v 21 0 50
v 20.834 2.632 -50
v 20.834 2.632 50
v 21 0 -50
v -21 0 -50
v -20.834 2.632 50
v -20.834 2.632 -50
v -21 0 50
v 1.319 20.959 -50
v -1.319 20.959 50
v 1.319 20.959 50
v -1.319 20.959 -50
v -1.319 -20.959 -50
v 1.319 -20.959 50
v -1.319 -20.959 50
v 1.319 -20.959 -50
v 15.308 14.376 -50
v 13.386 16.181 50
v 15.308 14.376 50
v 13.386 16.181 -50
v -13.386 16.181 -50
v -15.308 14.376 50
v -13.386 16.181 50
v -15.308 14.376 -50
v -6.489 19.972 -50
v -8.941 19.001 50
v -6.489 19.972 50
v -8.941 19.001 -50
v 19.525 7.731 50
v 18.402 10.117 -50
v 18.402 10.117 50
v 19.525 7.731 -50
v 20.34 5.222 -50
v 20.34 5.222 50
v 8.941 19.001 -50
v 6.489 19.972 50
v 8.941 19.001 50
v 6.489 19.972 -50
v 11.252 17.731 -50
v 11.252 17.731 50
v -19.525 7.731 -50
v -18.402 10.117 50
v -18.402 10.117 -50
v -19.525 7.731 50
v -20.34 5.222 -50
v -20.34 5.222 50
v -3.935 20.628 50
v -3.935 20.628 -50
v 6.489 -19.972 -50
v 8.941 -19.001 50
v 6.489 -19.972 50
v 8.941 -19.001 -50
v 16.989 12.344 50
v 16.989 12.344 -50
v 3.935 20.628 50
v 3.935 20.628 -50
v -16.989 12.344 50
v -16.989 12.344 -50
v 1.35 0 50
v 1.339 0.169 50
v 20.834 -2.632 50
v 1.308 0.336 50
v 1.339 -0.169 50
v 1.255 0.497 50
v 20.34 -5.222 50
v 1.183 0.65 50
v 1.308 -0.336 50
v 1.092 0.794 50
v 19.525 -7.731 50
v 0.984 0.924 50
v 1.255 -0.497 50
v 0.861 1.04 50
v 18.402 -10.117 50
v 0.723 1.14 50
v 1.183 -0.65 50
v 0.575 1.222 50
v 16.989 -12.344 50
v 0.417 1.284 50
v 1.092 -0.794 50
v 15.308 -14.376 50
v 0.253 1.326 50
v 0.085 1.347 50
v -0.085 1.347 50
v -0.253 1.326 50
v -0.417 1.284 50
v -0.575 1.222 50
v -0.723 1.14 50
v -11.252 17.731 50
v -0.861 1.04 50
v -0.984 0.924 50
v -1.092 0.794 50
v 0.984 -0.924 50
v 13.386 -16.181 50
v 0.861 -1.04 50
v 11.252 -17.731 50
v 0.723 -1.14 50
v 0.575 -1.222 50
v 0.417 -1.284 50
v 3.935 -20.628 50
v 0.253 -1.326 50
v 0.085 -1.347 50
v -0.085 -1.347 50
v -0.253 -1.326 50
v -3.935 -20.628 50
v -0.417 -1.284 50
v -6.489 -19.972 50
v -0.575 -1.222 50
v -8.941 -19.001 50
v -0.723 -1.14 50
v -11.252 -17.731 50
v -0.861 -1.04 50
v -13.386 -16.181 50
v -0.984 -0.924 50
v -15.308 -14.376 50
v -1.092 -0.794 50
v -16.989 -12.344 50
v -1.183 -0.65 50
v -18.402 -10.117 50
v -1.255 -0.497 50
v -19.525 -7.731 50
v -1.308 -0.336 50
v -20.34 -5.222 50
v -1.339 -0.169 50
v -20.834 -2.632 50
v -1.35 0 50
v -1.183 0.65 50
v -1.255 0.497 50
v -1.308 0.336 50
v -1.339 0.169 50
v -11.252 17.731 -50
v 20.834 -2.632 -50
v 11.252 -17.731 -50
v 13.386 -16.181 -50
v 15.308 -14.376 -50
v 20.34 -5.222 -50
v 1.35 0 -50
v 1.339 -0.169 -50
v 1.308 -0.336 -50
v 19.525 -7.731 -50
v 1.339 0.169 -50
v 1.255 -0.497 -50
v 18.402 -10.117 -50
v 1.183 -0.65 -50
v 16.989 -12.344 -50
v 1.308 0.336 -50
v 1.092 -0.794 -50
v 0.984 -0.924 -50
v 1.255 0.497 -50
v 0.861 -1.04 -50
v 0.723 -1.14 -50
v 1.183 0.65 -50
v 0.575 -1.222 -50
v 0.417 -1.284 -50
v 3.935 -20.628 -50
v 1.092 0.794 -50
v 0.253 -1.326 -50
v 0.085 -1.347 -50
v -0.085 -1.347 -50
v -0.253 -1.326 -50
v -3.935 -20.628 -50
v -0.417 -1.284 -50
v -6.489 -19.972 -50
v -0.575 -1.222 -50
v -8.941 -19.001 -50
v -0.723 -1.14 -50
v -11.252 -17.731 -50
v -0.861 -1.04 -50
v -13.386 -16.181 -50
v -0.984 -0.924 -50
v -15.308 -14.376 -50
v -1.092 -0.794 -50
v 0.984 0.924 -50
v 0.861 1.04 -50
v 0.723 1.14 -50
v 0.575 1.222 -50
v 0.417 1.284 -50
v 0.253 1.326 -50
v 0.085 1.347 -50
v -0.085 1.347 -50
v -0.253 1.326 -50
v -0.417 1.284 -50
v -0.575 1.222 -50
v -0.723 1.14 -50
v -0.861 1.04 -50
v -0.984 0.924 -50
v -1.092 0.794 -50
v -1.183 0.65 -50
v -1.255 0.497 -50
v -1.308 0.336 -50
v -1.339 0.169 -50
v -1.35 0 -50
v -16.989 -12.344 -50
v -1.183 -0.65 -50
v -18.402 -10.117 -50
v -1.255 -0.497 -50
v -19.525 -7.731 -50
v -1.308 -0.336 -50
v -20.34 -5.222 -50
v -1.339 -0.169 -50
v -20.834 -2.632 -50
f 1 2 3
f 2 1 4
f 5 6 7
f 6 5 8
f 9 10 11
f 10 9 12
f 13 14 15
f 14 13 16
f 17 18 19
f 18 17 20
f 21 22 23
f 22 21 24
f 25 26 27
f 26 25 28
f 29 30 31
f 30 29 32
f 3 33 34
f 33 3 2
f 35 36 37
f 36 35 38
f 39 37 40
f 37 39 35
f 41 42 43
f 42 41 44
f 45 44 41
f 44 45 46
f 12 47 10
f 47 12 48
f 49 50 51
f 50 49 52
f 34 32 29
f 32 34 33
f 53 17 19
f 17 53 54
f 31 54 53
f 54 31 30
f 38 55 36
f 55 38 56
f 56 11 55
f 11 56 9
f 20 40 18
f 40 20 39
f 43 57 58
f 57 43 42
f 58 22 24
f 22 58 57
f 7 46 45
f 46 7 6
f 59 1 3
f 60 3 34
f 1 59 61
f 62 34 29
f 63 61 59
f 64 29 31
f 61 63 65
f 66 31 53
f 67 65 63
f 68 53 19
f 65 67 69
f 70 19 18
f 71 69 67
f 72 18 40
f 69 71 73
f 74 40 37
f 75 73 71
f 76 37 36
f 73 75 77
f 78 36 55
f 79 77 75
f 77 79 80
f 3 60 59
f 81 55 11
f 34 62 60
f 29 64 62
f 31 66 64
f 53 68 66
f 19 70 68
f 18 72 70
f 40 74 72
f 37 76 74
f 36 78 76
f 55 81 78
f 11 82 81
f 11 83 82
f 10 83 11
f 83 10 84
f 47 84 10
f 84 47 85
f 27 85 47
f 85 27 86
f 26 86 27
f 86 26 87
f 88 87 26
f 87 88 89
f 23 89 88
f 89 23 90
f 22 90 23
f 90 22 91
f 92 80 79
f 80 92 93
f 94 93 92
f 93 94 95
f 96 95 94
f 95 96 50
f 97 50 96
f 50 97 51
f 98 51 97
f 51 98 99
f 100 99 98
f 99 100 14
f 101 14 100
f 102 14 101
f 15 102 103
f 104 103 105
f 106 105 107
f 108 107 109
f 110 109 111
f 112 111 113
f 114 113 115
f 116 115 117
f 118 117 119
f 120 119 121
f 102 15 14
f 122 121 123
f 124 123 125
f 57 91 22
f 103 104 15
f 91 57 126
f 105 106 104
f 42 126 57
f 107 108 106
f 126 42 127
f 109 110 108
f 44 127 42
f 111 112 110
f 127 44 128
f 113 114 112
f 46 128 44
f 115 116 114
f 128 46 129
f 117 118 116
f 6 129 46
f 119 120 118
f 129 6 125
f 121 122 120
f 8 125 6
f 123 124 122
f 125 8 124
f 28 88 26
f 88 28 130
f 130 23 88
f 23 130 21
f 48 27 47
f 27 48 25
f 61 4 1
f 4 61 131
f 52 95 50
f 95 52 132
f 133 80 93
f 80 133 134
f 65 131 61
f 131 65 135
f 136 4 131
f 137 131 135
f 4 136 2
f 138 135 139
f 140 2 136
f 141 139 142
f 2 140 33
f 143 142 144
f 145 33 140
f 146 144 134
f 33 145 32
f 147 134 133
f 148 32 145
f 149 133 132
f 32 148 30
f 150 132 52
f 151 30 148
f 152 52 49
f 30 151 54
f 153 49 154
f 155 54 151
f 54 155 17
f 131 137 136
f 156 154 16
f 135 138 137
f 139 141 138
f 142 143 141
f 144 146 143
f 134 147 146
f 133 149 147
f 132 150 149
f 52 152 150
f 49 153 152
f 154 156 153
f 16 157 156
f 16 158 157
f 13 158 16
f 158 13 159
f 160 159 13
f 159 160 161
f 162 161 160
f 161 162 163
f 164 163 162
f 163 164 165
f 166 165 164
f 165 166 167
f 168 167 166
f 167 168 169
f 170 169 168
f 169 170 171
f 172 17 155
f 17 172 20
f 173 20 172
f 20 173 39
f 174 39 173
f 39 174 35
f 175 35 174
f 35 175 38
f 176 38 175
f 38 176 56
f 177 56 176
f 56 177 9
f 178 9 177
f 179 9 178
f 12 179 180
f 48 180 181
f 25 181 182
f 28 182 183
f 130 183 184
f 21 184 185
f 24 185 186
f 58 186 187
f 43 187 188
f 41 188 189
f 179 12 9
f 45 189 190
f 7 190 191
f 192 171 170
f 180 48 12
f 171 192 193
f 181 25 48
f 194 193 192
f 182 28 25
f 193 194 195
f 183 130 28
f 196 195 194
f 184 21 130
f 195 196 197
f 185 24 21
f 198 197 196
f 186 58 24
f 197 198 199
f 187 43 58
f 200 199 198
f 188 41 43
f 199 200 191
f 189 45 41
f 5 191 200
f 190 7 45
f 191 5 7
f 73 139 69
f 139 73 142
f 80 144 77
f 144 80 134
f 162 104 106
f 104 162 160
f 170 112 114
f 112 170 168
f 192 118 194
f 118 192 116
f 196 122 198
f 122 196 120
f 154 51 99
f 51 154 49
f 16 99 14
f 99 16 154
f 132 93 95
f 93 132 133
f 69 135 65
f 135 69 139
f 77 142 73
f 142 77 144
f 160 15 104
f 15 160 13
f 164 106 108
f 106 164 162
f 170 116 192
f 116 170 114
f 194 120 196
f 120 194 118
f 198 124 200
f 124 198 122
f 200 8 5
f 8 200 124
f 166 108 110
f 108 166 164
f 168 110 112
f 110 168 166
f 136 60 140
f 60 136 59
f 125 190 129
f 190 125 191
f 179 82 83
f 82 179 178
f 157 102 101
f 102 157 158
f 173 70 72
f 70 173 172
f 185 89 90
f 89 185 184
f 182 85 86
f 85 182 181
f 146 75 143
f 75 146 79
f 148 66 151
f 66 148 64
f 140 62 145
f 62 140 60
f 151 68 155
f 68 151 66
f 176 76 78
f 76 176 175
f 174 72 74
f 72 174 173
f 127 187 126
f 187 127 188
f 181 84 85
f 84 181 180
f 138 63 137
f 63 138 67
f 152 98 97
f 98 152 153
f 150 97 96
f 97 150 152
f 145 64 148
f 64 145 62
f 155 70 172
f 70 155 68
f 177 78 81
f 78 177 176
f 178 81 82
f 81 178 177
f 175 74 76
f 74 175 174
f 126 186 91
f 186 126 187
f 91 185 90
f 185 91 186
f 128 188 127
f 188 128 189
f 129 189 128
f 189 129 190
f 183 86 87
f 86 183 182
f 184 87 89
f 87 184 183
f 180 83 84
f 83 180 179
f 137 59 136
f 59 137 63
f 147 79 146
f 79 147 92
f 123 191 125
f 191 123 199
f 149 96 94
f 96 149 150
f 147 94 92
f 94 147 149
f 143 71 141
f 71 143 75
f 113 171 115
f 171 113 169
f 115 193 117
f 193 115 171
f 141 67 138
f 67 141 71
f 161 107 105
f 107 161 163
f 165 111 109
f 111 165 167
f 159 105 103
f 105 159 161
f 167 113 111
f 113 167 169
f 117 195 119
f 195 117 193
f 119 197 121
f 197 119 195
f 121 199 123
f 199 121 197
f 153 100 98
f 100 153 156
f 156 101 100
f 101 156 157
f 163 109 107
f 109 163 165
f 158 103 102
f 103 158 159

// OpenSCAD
$fn = 50;


difference() {
	union() {
		translate(v = [0, 0, -50.0000000000]) {
			cylinder(h = 100, r = 21.0000000000);
		}
	}
	union() {
		translate(v = [0, 0, -100.0000000000]) {
			cylinder(h = 200, r = 1.3500000000);
		}
	}
}
